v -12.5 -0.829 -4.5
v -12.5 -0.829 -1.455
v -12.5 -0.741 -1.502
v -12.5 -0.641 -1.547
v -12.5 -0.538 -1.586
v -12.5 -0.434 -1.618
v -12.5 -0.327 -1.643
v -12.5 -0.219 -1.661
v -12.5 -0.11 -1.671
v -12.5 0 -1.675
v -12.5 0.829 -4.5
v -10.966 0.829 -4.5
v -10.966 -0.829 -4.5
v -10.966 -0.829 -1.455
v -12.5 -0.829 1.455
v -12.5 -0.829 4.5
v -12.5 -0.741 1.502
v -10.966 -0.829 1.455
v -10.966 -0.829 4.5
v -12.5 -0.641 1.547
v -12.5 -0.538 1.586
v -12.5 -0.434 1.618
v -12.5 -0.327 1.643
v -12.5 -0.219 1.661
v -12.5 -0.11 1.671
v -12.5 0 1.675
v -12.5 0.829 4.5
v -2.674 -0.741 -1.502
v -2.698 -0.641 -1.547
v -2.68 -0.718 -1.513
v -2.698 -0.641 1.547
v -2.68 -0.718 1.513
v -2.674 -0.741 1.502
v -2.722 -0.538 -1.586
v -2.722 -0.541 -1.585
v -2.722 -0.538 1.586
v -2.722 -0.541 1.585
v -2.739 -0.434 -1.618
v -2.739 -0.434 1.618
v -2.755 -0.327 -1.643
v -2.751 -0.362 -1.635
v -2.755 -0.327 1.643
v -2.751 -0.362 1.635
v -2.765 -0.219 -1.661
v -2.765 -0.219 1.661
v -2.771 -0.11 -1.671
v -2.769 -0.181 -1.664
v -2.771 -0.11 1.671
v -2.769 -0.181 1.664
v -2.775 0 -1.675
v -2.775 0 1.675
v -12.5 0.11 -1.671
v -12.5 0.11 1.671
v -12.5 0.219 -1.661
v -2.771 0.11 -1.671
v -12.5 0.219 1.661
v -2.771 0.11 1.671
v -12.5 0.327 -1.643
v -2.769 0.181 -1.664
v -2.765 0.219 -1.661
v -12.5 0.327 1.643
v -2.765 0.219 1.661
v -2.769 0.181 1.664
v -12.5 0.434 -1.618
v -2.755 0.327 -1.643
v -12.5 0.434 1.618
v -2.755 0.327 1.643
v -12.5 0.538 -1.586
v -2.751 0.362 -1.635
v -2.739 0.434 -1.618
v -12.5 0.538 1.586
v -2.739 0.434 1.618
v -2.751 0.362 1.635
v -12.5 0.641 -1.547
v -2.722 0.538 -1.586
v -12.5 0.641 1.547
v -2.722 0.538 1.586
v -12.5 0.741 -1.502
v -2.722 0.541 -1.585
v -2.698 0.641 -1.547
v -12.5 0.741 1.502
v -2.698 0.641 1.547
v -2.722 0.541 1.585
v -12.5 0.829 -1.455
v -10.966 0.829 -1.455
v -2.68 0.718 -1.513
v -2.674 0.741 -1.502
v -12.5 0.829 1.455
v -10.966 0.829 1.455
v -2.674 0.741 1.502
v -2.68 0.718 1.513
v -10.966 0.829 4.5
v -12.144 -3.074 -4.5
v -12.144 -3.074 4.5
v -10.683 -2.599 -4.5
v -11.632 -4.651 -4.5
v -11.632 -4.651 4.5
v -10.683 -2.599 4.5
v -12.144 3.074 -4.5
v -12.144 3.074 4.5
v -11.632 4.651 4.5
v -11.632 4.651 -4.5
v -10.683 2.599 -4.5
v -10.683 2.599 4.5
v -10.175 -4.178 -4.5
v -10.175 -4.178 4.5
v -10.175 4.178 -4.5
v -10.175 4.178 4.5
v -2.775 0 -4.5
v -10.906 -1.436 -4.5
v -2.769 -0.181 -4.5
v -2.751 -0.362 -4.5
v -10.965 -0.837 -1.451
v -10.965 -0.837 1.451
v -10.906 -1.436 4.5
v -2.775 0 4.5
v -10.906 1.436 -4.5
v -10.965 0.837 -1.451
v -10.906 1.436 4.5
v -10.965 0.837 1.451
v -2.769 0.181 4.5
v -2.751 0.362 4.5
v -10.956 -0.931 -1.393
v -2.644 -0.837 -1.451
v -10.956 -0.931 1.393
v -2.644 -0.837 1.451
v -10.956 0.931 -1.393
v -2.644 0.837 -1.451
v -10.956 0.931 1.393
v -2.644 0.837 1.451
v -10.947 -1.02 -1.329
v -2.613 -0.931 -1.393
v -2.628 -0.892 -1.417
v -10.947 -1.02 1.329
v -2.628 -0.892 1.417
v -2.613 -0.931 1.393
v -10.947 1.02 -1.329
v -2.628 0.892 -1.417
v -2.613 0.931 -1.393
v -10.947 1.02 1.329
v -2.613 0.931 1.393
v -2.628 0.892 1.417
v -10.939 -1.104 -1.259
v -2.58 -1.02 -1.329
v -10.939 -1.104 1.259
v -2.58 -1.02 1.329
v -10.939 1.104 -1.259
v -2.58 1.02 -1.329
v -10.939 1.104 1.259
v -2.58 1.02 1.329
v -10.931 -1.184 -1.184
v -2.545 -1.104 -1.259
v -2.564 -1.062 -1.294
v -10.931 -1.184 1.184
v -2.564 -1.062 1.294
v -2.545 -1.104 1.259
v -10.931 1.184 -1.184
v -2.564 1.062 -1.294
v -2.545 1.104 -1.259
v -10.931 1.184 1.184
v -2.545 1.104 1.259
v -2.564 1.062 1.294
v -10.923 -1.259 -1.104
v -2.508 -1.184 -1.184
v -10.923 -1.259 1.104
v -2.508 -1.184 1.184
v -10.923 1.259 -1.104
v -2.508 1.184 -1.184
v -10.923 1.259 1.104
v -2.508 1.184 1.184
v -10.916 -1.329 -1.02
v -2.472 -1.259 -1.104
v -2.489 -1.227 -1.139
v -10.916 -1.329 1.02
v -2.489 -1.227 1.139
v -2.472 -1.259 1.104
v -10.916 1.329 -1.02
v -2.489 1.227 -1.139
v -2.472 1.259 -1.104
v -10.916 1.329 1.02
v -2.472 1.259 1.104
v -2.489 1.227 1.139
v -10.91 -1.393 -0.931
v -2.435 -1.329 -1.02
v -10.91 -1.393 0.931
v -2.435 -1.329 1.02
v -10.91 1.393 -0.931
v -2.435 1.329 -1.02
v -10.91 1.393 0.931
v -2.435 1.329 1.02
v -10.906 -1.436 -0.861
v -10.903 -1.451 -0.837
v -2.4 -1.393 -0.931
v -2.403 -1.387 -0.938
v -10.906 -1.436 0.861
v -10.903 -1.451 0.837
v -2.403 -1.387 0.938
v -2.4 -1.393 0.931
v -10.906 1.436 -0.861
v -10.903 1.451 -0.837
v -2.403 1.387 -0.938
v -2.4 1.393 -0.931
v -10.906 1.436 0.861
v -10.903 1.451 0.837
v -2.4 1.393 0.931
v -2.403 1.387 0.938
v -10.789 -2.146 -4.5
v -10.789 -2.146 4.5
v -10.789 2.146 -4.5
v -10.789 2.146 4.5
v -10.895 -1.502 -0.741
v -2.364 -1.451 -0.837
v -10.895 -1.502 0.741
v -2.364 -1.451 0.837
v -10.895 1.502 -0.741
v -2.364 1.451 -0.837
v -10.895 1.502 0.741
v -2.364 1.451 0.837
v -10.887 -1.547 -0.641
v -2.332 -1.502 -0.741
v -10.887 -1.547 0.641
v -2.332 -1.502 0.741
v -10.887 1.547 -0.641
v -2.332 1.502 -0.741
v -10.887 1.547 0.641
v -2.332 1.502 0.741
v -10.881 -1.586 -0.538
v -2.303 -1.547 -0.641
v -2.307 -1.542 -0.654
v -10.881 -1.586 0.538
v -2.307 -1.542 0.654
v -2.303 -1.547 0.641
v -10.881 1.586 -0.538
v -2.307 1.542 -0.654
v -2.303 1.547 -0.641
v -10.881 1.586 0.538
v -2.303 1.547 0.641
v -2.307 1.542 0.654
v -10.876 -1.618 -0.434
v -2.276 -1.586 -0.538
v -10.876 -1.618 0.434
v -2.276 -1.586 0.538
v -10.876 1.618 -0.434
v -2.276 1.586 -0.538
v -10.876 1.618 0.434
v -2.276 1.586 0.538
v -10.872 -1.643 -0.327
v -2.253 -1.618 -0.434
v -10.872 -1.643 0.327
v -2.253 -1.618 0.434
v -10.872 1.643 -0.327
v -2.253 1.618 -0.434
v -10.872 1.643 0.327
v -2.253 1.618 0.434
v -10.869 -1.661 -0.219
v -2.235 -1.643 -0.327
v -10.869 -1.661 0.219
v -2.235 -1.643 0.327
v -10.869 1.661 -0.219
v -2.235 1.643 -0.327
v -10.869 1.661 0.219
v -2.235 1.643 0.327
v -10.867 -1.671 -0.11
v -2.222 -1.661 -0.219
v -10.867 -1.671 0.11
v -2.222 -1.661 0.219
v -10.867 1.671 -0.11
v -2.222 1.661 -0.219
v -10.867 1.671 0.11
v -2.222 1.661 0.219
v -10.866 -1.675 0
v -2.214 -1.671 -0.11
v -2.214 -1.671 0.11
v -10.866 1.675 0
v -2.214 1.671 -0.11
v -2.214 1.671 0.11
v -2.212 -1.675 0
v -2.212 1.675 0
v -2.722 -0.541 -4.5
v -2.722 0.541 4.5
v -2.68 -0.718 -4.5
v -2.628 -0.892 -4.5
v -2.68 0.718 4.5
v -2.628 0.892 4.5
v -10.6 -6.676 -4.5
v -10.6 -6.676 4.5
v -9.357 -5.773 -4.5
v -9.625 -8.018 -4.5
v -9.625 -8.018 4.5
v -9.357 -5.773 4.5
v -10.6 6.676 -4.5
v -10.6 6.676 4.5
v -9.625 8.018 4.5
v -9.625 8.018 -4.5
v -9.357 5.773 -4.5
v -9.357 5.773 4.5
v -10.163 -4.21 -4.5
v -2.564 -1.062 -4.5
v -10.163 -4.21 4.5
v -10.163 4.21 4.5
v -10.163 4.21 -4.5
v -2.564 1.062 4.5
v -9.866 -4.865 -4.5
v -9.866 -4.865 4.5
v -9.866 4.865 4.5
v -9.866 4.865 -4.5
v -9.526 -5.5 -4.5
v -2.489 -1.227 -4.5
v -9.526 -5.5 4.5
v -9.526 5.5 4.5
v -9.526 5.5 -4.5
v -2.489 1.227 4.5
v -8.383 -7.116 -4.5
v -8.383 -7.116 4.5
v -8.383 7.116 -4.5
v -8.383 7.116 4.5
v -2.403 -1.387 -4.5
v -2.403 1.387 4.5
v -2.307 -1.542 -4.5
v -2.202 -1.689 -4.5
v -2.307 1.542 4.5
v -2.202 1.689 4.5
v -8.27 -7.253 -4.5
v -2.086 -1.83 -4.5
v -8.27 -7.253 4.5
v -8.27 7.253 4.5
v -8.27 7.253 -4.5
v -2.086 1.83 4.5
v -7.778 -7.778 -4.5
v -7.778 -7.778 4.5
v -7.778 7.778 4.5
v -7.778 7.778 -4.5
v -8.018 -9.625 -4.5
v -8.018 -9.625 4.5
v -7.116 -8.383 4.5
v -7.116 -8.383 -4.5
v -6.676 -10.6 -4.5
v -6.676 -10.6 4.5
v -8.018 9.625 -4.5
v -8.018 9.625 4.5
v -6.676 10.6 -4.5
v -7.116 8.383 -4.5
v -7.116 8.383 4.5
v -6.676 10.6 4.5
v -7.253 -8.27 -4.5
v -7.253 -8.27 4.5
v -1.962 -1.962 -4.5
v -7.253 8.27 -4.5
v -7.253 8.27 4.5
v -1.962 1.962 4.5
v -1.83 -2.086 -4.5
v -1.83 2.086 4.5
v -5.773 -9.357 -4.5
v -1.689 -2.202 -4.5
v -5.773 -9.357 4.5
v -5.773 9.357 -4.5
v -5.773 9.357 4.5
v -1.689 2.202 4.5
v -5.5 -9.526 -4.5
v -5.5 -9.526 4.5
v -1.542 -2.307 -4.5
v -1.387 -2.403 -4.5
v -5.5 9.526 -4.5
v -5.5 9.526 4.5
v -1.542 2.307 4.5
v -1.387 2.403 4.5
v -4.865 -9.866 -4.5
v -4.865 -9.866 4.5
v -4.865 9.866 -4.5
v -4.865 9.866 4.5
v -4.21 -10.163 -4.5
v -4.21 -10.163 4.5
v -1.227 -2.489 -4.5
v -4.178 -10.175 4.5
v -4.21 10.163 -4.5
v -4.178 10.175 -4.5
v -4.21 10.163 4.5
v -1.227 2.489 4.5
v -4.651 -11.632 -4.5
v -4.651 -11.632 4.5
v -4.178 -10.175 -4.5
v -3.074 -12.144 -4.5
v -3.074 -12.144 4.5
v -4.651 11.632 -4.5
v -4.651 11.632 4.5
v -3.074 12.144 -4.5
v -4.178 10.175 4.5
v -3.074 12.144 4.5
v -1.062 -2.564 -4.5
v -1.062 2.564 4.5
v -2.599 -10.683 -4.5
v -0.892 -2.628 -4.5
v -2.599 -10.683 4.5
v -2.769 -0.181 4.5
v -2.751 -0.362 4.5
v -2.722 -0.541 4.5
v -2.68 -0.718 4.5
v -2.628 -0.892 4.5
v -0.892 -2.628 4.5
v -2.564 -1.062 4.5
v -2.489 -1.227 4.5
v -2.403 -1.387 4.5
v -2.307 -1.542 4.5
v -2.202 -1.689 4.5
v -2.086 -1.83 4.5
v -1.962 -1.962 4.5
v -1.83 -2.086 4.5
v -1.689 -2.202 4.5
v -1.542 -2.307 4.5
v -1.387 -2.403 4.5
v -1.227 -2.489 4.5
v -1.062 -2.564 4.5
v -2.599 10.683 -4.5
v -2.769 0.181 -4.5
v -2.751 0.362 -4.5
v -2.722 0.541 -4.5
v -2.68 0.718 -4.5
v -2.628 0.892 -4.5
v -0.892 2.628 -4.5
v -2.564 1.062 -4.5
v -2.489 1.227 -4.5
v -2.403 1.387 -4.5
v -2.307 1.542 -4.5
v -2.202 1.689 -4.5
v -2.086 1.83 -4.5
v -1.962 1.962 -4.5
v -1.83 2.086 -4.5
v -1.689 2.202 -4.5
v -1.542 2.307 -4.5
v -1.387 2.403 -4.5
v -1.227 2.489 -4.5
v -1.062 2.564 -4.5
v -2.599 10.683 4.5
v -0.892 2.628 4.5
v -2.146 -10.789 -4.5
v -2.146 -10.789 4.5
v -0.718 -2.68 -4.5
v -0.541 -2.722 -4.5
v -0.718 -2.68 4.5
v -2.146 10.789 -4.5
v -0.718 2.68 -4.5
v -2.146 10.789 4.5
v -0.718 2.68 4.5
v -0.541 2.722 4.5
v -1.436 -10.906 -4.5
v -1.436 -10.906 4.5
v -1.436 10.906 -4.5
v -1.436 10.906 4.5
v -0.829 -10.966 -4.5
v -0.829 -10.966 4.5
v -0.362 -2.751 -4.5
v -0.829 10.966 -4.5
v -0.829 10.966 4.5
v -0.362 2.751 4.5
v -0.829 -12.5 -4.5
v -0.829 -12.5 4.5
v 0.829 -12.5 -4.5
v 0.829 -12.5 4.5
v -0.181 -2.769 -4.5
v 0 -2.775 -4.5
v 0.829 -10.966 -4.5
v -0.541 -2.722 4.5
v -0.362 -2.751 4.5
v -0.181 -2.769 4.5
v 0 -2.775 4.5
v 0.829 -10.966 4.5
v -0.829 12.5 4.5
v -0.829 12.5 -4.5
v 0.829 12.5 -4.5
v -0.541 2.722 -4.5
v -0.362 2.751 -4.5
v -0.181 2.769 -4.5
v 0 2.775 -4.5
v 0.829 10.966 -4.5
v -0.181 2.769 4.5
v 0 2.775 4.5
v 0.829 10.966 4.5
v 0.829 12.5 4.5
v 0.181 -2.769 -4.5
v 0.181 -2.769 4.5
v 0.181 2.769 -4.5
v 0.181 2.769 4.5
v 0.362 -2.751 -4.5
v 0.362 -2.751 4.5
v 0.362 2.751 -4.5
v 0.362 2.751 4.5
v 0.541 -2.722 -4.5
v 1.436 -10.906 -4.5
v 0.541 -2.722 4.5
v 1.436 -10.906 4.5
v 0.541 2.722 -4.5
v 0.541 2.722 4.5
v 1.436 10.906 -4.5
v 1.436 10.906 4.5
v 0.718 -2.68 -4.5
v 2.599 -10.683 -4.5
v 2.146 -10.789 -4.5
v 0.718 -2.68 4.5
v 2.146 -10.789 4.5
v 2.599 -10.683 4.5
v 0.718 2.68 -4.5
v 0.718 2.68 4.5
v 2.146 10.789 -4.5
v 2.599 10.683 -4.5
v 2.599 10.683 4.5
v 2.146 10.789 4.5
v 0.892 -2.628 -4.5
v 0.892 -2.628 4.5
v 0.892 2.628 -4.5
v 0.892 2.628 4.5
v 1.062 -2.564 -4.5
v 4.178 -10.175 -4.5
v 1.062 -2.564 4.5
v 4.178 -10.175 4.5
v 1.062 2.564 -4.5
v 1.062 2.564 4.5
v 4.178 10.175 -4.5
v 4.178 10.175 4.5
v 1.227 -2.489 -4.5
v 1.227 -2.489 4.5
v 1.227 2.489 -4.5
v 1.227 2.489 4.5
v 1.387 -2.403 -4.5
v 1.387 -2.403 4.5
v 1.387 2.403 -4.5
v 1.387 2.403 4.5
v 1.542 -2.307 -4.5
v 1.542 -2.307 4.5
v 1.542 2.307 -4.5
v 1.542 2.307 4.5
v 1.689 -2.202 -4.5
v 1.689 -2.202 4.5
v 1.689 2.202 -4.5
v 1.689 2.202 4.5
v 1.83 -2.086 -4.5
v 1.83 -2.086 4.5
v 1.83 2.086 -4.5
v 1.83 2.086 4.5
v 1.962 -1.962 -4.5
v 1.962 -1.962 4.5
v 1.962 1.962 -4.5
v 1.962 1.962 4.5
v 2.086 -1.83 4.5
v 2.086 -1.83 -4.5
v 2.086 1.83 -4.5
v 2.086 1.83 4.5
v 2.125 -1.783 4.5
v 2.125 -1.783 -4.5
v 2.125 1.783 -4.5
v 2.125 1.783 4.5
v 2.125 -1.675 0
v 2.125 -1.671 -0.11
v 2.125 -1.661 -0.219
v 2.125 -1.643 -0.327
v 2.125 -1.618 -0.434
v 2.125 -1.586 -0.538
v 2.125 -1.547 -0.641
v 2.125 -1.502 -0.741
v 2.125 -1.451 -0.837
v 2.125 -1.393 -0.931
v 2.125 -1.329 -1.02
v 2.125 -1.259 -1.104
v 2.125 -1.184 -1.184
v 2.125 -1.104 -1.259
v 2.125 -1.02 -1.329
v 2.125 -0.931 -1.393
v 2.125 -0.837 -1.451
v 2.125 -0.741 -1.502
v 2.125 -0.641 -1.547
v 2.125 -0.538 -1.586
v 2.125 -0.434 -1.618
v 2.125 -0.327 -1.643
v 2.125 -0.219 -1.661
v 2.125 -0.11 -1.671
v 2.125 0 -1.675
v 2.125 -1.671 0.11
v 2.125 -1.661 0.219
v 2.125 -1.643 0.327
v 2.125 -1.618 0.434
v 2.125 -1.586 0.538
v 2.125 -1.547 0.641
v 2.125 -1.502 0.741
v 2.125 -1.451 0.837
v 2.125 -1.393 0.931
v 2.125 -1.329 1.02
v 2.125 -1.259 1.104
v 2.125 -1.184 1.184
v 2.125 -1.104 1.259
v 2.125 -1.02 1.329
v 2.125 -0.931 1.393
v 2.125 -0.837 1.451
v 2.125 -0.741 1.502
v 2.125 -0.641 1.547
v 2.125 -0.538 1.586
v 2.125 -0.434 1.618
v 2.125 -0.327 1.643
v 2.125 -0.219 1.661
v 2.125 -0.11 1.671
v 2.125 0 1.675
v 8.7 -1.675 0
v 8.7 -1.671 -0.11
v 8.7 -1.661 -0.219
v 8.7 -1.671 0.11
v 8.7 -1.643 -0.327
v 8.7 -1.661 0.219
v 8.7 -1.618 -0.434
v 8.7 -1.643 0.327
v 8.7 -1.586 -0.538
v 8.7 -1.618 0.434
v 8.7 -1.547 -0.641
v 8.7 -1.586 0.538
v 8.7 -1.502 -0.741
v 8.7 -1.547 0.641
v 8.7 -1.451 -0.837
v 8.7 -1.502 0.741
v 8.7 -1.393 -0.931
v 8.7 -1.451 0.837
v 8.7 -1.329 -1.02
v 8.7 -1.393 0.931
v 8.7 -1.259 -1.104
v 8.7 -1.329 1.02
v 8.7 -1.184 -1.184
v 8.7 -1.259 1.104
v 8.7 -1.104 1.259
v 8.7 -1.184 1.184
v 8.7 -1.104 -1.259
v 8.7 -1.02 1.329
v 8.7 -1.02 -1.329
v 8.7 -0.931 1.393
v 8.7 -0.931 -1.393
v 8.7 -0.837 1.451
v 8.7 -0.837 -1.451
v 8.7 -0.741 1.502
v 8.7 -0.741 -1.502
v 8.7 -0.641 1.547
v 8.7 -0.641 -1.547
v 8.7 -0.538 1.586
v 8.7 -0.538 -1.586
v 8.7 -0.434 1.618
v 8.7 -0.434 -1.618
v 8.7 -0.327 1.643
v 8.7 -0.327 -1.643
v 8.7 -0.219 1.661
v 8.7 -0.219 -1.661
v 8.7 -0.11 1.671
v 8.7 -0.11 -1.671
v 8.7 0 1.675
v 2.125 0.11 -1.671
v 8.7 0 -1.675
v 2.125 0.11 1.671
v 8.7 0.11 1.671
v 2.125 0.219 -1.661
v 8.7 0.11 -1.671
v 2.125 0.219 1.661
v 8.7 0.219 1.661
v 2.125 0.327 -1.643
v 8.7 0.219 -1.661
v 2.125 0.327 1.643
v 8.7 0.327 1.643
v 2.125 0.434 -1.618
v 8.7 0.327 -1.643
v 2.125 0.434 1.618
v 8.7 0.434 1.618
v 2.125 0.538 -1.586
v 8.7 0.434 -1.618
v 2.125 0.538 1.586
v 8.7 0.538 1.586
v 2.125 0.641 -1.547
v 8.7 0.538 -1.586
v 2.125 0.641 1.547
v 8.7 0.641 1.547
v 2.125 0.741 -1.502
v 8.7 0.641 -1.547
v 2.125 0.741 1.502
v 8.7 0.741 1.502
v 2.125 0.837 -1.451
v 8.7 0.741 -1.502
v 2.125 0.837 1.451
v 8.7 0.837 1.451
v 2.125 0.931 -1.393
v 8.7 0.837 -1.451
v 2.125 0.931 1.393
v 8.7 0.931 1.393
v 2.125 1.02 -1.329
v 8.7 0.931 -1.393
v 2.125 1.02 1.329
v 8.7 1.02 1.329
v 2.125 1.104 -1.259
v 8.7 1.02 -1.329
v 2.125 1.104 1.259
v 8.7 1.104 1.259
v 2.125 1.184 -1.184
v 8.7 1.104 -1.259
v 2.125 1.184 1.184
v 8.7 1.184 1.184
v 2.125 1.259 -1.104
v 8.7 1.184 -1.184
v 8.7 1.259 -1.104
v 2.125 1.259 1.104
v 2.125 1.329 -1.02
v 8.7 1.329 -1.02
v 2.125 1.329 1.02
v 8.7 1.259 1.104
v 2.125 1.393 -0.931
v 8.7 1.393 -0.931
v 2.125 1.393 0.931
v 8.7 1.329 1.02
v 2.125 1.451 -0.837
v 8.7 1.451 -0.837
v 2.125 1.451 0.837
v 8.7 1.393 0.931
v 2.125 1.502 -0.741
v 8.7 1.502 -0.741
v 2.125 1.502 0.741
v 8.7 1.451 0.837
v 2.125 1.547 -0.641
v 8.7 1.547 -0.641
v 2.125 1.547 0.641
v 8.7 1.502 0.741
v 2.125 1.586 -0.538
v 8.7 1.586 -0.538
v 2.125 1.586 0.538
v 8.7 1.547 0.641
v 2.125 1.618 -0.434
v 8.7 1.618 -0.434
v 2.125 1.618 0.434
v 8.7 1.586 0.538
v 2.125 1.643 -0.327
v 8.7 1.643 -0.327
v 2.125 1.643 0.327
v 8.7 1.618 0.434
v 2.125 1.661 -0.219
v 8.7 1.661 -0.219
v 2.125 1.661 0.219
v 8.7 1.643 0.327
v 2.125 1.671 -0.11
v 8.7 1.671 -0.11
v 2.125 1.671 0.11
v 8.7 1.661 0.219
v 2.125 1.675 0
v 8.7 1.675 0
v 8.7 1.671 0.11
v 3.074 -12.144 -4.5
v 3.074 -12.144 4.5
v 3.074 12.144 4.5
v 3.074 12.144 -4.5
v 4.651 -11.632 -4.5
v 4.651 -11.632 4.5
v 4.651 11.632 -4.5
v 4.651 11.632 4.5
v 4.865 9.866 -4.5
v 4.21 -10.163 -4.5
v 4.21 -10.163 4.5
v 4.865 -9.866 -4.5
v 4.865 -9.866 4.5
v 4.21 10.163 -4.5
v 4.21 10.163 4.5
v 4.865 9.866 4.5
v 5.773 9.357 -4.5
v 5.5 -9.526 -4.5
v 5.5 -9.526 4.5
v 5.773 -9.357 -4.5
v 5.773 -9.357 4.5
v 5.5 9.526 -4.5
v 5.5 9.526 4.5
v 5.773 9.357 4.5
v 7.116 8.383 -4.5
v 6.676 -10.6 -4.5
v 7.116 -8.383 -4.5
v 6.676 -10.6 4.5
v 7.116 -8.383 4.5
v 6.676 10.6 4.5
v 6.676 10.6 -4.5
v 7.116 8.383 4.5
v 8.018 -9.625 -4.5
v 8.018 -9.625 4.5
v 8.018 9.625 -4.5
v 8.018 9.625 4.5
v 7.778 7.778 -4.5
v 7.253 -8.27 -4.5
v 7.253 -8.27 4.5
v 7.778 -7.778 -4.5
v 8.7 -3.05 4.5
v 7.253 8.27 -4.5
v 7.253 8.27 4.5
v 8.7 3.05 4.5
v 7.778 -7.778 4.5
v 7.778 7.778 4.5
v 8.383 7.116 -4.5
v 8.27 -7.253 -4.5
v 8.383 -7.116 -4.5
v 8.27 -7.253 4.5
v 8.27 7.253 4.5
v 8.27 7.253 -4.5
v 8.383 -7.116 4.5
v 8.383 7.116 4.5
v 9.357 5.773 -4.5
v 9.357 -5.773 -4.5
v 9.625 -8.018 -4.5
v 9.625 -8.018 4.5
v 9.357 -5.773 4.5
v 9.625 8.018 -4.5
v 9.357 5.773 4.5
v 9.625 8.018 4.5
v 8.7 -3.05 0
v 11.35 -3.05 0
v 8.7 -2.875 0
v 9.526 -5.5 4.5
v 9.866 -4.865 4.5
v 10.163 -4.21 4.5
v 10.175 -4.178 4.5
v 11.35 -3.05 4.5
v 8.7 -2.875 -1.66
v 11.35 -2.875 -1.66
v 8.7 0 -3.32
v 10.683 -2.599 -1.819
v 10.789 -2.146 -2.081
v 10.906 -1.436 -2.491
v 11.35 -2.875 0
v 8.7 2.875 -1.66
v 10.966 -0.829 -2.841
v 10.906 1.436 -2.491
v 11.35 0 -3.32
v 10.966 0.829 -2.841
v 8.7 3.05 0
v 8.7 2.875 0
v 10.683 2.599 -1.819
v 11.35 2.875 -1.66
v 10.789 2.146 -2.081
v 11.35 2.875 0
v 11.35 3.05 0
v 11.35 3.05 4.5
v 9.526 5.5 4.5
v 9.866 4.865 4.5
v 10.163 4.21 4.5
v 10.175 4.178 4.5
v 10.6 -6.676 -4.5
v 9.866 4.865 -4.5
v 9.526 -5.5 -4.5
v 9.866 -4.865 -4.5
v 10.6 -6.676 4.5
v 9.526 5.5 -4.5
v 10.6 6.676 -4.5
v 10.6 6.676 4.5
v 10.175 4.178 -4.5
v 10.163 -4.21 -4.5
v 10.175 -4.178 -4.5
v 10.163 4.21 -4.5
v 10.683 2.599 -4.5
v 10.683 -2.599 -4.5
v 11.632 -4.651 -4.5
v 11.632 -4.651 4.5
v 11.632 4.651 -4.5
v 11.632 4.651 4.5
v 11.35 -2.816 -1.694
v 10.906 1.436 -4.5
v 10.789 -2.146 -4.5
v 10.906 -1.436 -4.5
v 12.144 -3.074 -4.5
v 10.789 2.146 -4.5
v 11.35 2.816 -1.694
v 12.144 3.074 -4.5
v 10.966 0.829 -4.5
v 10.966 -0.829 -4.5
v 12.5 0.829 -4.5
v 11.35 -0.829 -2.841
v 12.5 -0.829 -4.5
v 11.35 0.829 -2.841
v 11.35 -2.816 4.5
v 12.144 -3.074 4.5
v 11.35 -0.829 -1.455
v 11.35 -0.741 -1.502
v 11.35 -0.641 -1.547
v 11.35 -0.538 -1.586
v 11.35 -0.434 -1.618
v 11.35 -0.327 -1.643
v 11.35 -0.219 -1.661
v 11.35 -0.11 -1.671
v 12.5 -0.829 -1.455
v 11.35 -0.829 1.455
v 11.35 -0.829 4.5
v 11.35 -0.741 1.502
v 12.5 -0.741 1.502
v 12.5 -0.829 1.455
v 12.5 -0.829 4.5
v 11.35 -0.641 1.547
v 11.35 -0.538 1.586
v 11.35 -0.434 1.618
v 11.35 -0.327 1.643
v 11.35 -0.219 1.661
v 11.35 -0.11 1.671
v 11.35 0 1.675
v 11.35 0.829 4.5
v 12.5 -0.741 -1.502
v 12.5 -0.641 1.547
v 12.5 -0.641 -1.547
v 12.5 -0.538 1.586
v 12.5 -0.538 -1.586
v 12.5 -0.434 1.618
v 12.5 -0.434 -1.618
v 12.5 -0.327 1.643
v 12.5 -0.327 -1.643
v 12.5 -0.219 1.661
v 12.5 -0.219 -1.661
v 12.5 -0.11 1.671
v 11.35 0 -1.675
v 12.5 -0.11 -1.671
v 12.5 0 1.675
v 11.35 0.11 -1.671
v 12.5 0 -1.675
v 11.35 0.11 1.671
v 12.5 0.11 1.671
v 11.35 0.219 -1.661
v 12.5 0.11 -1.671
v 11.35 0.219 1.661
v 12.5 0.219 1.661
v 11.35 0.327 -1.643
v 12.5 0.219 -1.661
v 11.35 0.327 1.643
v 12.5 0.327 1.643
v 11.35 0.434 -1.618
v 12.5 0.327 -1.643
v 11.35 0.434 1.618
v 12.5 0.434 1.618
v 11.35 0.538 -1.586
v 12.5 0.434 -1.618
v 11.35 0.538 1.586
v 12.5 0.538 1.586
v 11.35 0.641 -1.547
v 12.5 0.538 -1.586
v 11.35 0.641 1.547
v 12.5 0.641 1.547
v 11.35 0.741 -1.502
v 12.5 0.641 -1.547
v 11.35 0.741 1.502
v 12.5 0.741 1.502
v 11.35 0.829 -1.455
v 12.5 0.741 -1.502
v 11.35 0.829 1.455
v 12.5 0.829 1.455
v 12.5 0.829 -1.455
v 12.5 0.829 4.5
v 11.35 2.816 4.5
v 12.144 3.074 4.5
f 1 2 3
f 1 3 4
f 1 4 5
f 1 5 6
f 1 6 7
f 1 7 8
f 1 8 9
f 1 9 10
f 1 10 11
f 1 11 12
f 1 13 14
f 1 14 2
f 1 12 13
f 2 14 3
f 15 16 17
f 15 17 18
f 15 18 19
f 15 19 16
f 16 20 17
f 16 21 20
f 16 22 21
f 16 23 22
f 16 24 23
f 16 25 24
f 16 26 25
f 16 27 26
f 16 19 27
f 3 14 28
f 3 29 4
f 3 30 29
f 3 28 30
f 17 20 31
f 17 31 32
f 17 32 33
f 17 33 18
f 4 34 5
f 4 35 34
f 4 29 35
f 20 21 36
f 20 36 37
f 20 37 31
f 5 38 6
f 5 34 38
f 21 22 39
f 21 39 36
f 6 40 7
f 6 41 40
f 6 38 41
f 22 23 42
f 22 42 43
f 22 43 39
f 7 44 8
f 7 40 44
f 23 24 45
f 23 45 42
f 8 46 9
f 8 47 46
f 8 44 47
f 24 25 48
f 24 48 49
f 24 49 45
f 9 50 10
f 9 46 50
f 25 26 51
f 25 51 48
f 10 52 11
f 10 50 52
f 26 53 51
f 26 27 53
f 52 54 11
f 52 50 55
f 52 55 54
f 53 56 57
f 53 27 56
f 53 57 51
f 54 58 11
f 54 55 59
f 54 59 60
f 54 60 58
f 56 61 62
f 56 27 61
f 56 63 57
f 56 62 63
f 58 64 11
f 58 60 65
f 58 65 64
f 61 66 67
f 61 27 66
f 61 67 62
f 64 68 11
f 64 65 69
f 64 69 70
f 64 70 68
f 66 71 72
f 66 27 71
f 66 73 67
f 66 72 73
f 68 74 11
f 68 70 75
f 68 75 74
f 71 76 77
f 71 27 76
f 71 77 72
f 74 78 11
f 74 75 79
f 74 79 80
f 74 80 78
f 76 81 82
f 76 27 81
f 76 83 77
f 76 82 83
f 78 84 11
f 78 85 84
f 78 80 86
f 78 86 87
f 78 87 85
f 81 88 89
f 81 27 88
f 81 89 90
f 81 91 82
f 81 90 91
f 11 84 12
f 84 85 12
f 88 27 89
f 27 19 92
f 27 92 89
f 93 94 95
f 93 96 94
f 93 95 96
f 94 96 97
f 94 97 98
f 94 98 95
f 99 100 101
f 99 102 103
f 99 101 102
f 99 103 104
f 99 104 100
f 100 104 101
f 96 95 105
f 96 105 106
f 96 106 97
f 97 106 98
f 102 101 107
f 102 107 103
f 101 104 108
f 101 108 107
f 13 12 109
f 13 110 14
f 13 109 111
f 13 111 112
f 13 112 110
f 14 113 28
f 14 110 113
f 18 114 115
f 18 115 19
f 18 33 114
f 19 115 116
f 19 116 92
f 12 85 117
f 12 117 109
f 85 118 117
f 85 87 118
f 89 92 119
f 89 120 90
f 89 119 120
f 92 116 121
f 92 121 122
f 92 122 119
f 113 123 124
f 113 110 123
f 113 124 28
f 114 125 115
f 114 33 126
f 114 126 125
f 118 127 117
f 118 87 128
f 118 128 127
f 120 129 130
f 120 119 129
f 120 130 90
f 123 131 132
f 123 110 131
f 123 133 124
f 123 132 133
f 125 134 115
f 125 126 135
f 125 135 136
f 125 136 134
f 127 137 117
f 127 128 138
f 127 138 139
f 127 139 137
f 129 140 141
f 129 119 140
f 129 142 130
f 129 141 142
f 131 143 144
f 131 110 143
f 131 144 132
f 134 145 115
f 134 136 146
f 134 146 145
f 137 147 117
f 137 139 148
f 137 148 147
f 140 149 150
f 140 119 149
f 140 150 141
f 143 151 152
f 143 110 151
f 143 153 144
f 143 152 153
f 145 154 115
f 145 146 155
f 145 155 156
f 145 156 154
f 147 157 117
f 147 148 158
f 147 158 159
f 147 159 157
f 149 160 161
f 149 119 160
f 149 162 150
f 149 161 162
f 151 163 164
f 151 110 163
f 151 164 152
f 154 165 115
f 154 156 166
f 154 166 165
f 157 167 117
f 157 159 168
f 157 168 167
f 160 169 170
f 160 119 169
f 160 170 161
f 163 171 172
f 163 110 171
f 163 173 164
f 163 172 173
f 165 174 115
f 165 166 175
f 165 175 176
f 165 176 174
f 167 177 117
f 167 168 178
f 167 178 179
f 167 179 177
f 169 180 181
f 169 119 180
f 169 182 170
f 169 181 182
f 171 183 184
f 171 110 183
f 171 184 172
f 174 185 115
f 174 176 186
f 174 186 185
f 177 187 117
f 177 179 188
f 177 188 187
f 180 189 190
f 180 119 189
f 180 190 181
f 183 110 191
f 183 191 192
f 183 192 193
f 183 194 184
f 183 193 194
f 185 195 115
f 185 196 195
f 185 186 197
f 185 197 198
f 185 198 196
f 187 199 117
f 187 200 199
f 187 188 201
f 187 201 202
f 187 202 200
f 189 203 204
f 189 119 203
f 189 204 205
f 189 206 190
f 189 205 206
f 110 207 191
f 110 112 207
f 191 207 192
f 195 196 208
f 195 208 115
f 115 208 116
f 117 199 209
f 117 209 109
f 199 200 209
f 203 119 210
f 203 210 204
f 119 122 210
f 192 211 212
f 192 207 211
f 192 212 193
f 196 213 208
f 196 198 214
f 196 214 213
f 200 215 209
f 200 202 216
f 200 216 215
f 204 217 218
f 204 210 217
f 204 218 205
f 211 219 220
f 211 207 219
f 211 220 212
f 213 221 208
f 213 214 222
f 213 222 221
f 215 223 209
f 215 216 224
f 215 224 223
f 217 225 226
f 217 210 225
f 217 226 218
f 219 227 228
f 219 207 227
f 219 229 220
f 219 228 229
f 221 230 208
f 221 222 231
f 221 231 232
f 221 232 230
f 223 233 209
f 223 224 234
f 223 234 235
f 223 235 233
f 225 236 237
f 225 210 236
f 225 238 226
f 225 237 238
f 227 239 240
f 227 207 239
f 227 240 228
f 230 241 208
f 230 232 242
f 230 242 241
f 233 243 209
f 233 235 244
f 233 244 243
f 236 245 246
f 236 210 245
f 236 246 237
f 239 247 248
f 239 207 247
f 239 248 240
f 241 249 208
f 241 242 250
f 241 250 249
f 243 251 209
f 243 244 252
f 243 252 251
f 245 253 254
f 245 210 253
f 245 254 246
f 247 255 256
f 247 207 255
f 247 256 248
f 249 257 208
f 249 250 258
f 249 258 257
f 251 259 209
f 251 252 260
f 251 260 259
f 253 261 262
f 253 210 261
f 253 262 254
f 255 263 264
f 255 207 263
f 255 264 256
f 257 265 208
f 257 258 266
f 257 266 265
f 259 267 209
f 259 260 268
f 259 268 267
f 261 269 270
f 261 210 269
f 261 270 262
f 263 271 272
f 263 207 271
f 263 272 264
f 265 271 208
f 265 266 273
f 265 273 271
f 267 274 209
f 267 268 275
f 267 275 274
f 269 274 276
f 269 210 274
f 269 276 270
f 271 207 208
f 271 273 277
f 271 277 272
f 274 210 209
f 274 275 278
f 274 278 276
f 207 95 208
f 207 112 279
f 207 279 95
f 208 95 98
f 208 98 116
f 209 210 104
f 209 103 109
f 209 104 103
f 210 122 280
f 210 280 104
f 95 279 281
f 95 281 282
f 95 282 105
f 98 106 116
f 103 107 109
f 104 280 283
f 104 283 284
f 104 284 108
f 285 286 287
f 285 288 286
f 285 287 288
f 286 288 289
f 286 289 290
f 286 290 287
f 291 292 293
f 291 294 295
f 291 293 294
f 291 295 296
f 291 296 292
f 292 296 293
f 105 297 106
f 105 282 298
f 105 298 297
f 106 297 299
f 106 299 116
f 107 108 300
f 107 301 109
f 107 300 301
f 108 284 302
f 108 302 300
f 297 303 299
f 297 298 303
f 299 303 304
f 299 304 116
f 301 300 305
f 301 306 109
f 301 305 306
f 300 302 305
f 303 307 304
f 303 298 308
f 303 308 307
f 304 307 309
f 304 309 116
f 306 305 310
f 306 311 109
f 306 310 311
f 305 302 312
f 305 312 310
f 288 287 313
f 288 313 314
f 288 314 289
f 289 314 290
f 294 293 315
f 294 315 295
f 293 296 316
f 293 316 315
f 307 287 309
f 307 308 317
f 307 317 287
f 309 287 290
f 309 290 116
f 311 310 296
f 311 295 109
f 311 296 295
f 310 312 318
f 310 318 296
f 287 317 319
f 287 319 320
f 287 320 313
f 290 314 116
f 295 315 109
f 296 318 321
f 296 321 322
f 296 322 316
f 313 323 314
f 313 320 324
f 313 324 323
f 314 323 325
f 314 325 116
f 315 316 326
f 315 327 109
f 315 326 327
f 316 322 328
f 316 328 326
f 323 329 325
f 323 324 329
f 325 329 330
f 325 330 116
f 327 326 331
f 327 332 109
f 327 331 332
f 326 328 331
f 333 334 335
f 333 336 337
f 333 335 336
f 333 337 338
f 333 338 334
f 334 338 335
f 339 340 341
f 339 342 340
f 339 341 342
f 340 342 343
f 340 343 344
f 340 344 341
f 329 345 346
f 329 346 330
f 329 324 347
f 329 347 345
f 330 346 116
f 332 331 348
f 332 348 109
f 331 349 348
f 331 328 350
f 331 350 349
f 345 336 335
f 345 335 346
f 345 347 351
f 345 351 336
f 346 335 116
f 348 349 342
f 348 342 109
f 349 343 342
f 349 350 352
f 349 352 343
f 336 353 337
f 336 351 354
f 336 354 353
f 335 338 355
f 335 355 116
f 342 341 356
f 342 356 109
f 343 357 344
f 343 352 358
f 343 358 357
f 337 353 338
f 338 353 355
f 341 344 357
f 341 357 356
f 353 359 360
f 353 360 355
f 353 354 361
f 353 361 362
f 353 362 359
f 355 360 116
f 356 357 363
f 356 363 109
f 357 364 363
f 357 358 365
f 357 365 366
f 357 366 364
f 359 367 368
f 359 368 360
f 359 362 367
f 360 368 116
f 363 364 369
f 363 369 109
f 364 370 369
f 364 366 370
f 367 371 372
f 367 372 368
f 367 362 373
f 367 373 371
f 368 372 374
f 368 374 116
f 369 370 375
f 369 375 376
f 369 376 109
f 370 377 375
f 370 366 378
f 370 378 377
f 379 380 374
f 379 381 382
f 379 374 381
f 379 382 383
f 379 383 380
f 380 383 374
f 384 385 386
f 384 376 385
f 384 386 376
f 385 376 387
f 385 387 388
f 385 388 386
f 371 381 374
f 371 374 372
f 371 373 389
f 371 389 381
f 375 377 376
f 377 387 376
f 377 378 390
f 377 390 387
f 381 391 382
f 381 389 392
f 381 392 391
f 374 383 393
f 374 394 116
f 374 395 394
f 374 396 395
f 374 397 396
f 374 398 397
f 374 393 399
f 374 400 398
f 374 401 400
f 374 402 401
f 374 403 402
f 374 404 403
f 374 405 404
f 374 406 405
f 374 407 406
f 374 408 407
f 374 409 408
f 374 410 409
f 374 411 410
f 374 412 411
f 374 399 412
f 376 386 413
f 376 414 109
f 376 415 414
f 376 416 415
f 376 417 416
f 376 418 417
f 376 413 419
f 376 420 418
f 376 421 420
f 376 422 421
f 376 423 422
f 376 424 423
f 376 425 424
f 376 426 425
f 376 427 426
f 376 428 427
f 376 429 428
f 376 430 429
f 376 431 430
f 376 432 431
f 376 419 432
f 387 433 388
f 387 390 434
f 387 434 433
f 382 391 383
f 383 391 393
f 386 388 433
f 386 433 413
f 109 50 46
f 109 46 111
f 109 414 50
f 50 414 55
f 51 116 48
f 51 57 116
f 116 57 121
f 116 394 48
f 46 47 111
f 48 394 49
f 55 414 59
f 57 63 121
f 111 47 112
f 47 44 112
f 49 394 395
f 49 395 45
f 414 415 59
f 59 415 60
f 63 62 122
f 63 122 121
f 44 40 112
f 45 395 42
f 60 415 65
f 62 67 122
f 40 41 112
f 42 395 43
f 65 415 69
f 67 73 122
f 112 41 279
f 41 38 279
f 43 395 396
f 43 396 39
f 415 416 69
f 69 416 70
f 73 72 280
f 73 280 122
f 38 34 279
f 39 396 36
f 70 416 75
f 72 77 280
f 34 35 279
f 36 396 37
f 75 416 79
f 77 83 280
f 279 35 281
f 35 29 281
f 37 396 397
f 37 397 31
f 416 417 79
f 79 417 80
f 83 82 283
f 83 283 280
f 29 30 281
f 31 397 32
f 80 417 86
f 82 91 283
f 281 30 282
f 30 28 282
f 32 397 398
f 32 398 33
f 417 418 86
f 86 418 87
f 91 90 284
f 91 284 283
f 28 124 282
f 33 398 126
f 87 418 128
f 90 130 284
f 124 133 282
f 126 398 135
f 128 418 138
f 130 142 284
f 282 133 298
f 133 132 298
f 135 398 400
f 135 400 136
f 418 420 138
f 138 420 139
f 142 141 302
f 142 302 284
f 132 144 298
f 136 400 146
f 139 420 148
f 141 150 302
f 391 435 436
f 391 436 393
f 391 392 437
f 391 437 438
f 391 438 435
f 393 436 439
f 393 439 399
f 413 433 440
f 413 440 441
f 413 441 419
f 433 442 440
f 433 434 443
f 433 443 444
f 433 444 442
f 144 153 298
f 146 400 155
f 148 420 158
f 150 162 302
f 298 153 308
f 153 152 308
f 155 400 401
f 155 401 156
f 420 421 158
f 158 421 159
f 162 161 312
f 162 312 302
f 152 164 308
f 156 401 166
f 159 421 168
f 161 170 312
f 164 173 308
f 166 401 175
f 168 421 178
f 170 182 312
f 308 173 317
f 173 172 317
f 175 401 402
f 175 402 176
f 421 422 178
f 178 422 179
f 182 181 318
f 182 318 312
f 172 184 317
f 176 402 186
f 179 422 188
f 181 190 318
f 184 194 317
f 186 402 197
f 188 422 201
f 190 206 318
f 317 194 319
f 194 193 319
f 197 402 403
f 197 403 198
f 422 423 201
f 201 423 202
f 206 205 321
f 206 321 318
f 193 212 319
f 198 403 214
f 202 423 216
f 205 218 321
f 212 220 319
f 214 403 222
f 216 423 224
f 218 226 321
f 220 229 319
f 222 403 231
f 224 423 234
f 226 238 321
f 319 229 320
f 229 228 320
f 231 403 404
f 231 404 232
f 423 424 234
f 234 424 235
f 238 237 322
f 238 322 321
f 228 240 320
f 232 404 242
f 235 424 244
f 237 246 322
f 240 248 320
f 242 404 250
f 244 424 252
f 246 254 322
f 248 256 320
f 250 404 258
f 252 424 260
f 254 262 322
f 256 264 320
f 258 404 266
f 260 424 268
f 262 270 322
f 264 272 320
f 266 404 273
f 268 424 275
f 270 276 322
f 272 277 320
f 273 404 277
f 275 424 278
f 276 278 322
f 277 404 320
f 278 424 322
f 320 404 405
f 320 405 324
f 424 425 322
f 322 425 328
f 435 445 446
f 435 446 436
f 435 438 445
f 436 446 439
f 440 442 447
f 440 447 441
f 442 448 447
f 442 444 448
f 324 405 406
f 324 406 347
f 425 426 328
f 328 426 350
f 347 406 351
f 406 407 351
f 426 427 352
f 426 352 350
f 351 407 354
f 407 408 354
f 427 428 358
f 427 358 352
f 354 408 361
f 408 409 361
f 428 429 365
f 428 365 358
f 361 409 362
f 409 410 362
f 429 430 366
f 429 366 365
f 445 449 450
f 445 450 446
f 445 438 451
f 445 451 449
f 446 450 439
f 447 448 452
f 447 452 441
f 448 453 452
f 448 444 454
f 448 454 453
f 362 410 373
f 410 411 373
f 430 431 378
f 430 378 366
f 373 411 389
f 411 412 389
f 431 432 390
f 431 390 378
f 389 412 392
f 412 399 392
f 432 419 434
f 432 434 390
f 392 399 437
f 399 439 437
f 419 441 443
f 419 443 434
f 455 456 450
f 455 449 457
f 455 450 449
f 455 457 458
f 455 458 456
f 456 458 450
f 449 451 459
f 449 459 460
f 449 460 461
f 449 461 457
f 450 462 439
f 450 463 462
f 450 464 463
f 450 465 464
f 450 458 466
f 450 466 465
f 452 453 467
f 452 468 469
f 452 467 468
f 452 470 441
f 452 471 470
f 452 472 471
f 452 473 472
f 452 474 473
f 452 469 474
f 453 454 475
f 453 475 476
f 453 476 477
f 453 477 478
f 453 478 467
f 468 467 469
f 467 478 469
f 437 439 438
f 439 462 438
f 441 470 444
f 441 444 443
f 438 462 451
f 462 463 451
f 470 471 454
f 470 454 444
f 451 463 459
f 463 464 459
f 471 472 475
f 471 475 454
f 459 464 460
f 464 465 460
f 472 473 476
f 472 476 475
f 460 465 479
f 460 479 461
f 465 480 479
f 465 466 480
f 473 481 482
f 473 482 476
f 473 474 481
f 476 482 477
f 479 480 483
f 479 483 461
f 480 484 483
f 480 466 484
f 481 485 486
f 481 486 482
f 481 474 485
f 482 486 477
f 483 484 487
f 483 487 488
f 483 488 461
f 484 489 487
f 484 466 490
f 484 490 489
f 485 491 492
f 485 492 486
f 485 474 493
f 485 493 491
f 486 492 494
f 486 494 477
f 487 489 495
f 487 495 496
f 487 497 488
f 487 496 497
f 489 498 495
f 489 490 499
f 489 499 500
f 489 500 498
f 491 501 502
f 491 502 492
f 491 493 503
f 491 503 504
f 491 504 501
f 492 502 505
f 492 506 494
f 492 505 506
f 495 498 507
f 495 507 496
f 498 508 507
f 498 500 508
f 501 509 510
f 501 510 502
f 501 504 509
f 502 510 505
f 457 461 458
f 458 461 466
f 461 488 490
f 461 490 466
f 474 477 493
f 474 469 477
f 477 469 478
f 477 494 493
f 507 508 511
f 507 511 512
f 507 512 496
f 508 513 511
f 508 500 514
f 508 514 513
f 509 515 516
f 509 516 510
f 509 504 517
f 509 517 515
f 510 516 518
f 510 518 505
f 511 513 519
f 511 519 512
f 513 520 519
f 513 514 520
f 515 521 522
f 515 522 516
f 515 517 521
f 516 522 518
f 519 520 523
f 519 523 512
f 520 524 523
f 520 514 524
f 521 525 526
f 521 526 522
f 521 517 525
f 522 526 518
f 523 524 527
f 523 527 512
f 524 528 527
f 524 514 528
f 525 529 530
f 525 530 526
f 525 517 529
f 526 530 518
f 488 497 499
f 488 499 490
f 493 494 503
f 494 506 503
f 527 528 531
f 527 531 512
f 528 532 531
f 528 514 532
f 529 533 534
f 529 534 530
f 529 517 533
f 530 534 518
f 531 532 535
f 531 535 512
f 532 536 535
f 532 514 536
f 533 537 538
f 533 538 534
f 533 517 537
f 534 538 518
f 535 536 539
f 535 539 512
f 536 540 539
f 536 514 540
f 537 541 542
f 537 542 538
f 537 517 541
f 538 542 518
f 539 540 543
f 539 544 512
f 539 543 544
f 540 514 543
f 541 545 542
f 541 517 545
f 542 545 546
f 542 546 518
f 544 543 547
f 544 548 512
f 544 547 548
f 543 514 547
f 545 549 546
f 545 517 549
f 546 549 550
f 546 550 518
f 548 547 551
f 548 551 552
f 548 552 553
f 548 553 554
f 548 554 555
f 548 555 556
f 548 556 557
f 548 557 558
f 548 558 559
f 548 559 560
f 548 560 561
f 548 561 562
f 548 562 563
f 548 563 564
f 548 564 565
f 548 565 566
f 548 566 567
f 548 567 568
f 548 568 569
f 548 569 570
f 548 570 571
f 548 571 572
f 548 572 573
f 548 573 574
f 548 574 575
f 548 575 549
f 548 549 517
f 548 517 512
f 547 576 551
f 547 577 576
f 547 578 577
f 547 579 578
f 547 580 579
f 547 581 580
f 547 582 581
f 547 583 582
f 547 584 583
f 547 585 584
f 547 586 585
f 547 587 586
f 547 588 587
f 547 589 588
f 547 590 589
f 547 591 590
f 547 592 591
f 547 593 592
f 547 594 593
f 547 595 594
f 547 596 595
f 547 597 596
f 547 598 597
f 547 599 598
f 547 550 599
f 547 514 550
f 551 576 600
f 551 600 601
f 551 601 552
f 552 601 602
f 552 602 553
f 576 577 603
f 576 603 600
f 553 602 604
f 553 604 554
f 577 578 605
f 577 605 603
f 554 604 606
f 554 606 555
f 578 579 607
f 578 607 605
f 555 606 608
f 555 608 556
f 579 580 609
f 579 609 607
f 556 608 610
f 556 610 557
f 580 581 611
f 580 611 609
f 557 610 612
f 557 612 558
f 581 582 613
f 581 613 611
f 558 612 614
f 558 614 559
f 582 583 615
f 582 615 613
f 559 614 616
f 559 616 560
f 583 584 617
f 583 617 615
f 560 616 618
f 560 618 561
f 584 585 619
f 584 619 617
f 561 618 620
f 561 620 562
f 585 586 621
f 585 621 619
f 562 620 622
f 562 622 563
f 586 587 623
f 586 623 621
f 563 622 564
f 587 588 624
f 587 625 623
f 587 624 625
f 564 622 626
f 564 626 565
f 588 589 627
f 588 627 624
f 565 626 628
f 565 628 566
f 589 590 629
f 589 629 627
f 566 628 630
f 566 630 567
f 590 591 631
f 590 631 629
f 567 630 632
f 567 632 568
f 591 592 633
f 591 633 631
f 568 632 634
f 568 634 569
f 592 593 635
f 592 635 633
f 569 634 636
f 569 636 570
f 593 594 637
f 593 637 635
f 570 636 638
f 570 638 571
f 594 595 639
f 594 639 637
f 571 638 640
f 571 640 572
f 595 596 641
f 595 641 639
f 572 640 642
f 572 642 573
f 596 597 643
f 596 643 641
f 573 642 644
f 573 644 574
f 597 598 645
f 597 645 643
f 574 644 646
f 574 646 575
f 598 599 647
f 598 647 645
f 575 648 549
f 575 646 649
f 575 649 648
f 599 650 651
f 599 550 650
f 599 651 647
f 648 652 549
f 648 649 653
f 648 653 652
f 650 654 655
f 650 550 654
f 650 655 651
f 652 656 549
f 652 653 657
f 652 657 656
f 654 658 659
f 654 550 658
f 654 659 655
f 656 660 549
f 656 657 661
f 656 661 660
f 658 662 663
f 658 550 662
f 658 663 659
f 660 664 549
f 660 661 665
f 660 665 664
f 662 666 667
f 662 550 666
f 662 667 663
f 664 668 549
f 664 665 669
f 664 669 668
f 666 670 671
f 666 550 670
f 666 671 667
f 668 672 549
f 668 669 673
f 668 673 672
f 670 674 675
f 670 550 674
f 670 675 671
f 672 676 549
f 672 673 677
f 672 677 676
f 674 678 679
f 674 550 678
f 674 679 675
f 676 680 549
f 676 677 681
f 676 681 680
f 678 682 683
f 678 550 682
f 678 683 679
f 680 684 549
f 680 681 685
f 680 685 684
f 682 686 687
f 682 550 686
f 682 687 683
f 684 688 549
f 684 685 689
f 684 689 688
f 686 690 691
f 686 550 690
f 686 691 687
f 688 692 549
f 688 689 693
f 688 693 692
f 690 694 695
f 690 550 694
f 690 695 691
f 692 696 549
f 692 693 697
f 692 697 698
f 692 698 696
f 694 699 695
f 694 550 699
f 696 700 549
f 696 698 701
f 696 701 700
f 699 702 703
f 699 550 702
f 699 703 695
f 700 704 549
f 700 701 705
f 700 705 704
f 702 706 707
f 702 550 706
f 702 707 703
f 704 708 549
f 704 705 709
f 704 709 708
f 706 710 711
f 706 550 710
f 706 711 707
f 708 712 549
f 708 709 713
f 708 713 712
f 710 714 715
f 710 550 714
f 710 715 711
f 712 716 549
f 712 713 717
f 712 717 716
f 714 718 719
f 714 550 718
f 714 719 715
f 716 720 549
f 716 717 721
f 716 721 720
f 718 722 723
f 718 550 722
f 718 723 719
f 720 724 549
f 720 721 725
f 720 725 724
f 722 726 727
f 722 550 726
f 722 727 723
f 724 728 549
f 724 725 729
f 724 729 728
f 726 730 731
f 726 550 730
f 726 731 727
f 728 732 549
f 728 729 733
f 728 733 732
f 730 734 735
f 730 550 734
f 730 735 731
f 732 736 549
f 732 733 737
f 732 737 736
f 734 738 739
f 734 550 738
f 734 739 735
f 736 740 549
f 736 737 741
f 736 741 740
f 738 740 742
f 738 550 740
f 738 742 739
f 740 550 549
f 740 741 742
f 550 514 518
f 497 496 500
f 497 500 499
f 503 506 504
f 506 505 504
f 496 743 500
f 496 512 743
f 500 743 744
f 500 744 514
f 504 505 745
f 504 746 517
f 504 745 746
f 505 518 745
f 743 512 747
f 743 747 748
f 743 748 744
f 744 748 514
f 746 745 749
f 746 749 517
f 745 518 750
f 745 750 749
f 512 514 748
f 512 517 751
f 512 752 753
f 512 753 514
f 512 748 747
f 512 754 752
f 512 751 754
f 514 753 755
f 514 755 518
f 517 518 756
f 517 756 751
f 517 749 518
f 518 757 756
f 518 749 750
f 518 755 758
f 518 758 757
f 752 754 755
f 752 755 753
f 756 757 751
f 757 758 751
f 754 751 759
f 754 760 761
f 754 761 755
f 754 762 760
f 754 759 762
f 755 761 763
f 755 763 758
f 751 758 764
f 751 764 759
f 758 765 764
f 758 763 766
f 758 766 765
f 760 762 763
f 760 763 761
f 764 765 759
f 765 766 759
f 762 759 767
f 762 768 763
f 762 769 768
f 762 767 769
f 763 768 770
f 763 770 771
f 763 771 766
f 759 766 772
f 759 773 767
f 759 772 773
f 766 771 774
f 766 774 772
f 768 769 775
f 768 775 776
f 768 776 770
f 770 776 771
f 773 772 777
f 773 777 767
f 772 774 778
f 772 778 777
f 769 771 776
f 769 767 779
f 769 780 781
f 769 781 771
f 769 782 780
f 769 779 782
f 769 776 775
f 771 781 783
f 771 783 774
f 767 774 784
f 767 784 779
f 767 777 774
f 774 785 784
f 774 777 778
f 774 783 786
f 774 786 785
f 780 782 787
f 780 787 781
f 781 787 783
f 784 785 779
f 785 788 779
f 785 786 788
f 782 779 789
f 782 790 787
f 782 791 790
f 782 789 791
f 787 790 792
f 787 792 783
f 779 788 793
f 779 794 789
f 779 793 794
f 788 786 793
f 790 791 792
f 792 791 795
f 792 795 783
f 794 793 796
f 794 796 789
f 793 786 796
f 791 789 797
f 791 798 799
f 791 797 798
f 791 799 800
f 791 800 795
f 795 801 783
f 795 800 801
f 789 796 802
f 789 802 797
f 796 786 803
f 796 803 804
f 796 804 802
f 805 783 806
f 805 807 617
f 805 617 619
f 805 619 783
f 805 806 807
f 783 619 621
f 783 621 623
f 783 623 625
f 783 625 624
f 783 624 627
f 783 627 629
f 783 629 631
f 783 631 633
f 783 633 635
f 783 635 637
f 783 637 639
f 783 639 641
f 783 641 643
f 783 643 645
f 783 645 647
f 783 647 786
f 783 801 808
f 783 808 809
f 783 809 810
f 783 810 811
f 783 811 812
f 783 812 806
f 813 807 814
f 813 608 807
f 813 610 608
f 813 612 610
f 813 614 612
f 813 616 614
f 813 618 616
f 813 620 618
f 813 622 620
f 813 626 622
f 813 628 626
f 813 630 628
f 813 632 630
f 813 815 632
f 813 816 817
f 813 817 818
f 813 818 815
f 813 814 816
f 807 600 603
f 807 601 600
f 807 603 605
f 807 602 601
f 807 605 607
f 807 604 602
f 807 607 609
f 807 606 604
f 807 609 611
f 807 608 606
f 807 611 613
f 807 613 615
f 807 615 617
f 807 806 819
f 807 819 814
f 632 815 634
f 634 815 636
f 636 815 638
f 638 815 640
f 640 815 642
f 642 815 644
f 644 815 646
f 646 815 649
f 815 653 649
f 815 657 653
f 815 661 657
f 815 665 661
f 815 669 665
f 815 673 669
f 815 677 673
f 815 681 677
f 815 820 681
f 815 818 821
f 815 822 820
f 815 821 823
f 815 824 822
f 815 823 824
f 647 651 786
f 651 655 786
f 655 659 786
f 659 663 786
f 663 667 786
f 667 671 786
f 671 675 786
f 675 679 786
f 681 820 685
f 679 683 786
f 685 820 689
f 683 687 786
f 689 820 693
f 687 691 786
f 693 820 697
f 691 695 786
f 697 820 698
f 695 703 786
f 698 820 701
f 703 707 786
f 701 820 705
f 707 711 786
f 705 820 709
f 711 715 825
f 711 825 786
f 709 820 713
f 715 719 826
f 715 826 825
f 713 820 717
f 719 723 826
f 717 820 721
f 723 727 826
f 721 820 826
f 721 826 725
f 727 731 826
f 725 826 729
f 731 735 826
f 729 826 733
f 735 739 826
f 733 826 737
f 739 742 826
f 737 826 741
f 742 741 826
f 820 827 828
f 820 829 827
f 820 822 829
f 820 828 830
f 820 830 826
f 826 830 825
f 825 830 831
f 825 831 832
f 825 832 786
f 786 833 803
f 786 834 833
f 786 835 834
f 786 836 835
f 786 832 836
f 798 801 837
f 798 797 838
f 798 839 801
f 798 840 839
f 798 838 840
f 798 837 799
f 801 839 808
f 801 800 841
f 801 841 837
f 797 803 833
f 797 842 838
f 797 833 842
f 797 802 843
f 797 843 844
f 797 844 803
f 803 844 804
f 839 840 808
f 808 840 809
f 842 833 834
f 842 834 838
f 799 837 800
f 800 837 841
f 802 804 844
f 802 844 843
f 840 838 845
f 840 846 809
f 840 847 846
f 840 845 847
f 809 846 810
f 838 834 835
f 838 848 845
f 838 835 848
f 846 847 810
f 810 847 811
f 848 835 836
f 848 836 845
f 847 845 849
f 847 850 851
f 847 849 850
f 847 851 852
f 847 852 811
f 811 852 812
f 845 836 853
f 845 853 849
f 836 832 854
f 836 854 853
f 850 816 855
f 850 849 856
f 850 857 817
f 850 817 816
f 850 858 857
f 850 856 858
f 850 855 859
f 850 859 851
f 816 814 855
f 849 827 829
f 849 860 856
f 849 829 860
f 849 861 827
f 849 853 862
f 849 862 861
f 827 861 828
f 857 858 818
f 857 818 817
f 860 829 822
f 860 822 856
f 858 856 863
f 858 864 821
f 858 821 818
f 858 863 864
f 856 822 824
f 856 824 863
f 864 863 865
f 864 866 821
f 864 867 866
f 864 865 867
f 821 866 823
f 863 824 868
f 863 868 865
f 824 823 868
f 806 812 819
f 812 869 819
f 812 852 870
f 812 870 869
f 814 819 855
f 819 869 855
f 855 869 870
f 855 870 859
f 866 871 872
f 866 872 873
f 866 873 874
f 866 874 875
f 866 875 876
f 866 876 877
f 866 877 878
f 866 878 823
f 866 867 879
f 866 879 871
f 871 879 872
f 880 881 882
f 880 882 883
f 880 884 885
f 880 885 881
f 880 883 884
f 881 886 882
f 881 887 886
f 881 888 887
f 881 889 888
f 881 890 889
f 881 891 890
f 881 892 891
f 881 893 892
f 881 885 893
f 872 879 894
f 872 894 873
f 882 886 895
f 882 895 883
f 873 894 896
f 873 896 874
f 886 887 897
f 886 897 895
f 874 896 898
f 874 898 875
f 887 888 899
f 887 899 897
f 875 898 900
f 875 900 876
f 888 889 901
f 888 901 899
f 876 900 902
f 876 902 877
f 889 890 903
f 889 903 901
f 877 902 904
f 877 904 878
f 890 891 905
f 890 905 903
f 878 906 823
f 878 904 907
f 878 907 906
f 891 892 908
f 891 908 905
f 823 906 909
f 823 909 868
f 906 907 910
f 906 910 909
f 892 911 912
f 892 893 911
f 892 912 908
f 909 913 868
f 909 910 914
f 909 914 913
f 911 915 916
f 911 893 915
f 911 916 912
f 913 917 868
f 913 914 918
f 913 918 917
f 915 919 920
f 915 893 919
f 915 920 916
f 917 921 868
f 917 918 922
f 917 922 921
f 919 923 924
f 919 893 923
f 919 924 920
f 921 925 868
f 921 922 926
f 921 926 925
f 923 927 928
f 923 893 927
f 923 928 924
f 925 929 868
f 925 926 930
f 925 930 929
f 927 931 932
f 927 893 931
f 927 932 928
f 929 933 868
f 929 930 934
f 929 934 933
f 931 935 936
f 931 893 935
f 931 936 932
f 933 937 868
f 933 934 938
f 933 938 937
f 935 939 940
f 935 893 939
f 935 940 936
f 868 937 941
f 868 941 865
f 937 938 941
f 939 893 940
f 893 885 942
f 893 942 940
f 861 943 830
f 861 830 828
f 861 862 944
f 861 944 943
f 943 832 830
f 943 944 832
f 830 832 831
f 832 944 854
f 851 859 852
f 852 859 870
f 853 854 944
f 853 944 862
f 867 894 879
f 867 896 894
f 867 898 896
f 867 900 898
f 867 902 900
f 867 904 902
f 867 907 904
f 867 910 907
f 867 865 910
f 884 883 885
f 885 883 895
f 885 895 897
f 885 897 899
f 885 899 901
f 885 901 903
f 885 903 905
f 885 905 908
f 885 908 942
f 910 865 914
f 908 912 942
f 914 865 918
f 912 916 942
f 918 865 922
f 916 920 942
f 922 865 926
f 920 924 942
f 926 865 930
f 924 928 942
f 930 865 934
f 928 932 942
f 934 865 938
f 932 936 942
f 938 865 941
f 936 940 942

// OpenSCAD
/*
  TT dual-shaft motor locking gear / hub
  Units: millimetres
  Default fit: common yellow TT motor 5.4 mm D-shaft + M3 captive nut.

  Print: PETG/PLA, 0.2 mm layers, 4 walls, 40% infill.
  Place one flat circular face on the build plate.
*/

$fn = 96;

// ---- Editable dimensions ----
shaft_diameter = 5.55;       // Increase by 0.10-0.20 if the fit is too tight
shaft_flat_depth = 0.65;     // Amount removed from the round shaft profile
body_diameter = 22;
body_thickness = 9;
tooth_count = 20;
tooth_depth = 1.5;
tooth_width_ratio = 0.48;

set_screw_diameter = 3.35;   // M3 clearance
nut_across_flats = 5.75;     // M3 nut, with print clearance
nut_thickness = 2.65;
nut_access_clearance = 0.35;

module d_bore(h) {
  difference() {
    cylinder(d = shaft_diameter, h = h, center = true);
    translate([shaft_diameter / 2 - shaft_flat_depth, -shaft_diameter, -h])
      cube([shaft_diameter, shaft_diameter * 2, h * 2]);
  }
}

module outer_gear() {
  union() {
    cylinder(d = body_diameter, h = body_thickness, center = true);
    for (i = [0 : tooth_count - 1])
      rotate([0, 0, i * 360 / tooth_count])
        translate([body_diameter / 2 + tooth_depth / 2 - 0.15, 0, 0])
          cube([
            tooth_depth + 0.3,
            PI * body_diameter / tooth_count * tooth_width_ratio,
            body_thickness
          ], center = true);
  }
}

module captive_nut_cut() {
  // Radial M3 screw presses against the D-shaft.
  rotate([0, 90, 0])
    cylinder(d = set_screw_diameter, h = body_diameter + tooth_depth * 4, center = true);

  // Hexagonal pocket opens from the rim so the M3 nut can slide in.
  translate([body_diameter / 2 - nut_thickness / 2 + nut_access_clearance, 0, 0])
    rotate([0, 90, 0])
      cylinder(d = nut_across_flats / cos(30), h = nut_thickness, center = true, $fn = 6);

  translate([body_diameter / 2 - nut_thickness / 2 + nut_access_clearance, 0,
             nut_across_flats / 2])
    cube([nut_thickness, nut_across_flats + 0.35, nut_across_flats], center = true);
}

difference() {
  outer_gear();
  d_bore(body_thickness + 2);
  captive_nut_cut();
}
